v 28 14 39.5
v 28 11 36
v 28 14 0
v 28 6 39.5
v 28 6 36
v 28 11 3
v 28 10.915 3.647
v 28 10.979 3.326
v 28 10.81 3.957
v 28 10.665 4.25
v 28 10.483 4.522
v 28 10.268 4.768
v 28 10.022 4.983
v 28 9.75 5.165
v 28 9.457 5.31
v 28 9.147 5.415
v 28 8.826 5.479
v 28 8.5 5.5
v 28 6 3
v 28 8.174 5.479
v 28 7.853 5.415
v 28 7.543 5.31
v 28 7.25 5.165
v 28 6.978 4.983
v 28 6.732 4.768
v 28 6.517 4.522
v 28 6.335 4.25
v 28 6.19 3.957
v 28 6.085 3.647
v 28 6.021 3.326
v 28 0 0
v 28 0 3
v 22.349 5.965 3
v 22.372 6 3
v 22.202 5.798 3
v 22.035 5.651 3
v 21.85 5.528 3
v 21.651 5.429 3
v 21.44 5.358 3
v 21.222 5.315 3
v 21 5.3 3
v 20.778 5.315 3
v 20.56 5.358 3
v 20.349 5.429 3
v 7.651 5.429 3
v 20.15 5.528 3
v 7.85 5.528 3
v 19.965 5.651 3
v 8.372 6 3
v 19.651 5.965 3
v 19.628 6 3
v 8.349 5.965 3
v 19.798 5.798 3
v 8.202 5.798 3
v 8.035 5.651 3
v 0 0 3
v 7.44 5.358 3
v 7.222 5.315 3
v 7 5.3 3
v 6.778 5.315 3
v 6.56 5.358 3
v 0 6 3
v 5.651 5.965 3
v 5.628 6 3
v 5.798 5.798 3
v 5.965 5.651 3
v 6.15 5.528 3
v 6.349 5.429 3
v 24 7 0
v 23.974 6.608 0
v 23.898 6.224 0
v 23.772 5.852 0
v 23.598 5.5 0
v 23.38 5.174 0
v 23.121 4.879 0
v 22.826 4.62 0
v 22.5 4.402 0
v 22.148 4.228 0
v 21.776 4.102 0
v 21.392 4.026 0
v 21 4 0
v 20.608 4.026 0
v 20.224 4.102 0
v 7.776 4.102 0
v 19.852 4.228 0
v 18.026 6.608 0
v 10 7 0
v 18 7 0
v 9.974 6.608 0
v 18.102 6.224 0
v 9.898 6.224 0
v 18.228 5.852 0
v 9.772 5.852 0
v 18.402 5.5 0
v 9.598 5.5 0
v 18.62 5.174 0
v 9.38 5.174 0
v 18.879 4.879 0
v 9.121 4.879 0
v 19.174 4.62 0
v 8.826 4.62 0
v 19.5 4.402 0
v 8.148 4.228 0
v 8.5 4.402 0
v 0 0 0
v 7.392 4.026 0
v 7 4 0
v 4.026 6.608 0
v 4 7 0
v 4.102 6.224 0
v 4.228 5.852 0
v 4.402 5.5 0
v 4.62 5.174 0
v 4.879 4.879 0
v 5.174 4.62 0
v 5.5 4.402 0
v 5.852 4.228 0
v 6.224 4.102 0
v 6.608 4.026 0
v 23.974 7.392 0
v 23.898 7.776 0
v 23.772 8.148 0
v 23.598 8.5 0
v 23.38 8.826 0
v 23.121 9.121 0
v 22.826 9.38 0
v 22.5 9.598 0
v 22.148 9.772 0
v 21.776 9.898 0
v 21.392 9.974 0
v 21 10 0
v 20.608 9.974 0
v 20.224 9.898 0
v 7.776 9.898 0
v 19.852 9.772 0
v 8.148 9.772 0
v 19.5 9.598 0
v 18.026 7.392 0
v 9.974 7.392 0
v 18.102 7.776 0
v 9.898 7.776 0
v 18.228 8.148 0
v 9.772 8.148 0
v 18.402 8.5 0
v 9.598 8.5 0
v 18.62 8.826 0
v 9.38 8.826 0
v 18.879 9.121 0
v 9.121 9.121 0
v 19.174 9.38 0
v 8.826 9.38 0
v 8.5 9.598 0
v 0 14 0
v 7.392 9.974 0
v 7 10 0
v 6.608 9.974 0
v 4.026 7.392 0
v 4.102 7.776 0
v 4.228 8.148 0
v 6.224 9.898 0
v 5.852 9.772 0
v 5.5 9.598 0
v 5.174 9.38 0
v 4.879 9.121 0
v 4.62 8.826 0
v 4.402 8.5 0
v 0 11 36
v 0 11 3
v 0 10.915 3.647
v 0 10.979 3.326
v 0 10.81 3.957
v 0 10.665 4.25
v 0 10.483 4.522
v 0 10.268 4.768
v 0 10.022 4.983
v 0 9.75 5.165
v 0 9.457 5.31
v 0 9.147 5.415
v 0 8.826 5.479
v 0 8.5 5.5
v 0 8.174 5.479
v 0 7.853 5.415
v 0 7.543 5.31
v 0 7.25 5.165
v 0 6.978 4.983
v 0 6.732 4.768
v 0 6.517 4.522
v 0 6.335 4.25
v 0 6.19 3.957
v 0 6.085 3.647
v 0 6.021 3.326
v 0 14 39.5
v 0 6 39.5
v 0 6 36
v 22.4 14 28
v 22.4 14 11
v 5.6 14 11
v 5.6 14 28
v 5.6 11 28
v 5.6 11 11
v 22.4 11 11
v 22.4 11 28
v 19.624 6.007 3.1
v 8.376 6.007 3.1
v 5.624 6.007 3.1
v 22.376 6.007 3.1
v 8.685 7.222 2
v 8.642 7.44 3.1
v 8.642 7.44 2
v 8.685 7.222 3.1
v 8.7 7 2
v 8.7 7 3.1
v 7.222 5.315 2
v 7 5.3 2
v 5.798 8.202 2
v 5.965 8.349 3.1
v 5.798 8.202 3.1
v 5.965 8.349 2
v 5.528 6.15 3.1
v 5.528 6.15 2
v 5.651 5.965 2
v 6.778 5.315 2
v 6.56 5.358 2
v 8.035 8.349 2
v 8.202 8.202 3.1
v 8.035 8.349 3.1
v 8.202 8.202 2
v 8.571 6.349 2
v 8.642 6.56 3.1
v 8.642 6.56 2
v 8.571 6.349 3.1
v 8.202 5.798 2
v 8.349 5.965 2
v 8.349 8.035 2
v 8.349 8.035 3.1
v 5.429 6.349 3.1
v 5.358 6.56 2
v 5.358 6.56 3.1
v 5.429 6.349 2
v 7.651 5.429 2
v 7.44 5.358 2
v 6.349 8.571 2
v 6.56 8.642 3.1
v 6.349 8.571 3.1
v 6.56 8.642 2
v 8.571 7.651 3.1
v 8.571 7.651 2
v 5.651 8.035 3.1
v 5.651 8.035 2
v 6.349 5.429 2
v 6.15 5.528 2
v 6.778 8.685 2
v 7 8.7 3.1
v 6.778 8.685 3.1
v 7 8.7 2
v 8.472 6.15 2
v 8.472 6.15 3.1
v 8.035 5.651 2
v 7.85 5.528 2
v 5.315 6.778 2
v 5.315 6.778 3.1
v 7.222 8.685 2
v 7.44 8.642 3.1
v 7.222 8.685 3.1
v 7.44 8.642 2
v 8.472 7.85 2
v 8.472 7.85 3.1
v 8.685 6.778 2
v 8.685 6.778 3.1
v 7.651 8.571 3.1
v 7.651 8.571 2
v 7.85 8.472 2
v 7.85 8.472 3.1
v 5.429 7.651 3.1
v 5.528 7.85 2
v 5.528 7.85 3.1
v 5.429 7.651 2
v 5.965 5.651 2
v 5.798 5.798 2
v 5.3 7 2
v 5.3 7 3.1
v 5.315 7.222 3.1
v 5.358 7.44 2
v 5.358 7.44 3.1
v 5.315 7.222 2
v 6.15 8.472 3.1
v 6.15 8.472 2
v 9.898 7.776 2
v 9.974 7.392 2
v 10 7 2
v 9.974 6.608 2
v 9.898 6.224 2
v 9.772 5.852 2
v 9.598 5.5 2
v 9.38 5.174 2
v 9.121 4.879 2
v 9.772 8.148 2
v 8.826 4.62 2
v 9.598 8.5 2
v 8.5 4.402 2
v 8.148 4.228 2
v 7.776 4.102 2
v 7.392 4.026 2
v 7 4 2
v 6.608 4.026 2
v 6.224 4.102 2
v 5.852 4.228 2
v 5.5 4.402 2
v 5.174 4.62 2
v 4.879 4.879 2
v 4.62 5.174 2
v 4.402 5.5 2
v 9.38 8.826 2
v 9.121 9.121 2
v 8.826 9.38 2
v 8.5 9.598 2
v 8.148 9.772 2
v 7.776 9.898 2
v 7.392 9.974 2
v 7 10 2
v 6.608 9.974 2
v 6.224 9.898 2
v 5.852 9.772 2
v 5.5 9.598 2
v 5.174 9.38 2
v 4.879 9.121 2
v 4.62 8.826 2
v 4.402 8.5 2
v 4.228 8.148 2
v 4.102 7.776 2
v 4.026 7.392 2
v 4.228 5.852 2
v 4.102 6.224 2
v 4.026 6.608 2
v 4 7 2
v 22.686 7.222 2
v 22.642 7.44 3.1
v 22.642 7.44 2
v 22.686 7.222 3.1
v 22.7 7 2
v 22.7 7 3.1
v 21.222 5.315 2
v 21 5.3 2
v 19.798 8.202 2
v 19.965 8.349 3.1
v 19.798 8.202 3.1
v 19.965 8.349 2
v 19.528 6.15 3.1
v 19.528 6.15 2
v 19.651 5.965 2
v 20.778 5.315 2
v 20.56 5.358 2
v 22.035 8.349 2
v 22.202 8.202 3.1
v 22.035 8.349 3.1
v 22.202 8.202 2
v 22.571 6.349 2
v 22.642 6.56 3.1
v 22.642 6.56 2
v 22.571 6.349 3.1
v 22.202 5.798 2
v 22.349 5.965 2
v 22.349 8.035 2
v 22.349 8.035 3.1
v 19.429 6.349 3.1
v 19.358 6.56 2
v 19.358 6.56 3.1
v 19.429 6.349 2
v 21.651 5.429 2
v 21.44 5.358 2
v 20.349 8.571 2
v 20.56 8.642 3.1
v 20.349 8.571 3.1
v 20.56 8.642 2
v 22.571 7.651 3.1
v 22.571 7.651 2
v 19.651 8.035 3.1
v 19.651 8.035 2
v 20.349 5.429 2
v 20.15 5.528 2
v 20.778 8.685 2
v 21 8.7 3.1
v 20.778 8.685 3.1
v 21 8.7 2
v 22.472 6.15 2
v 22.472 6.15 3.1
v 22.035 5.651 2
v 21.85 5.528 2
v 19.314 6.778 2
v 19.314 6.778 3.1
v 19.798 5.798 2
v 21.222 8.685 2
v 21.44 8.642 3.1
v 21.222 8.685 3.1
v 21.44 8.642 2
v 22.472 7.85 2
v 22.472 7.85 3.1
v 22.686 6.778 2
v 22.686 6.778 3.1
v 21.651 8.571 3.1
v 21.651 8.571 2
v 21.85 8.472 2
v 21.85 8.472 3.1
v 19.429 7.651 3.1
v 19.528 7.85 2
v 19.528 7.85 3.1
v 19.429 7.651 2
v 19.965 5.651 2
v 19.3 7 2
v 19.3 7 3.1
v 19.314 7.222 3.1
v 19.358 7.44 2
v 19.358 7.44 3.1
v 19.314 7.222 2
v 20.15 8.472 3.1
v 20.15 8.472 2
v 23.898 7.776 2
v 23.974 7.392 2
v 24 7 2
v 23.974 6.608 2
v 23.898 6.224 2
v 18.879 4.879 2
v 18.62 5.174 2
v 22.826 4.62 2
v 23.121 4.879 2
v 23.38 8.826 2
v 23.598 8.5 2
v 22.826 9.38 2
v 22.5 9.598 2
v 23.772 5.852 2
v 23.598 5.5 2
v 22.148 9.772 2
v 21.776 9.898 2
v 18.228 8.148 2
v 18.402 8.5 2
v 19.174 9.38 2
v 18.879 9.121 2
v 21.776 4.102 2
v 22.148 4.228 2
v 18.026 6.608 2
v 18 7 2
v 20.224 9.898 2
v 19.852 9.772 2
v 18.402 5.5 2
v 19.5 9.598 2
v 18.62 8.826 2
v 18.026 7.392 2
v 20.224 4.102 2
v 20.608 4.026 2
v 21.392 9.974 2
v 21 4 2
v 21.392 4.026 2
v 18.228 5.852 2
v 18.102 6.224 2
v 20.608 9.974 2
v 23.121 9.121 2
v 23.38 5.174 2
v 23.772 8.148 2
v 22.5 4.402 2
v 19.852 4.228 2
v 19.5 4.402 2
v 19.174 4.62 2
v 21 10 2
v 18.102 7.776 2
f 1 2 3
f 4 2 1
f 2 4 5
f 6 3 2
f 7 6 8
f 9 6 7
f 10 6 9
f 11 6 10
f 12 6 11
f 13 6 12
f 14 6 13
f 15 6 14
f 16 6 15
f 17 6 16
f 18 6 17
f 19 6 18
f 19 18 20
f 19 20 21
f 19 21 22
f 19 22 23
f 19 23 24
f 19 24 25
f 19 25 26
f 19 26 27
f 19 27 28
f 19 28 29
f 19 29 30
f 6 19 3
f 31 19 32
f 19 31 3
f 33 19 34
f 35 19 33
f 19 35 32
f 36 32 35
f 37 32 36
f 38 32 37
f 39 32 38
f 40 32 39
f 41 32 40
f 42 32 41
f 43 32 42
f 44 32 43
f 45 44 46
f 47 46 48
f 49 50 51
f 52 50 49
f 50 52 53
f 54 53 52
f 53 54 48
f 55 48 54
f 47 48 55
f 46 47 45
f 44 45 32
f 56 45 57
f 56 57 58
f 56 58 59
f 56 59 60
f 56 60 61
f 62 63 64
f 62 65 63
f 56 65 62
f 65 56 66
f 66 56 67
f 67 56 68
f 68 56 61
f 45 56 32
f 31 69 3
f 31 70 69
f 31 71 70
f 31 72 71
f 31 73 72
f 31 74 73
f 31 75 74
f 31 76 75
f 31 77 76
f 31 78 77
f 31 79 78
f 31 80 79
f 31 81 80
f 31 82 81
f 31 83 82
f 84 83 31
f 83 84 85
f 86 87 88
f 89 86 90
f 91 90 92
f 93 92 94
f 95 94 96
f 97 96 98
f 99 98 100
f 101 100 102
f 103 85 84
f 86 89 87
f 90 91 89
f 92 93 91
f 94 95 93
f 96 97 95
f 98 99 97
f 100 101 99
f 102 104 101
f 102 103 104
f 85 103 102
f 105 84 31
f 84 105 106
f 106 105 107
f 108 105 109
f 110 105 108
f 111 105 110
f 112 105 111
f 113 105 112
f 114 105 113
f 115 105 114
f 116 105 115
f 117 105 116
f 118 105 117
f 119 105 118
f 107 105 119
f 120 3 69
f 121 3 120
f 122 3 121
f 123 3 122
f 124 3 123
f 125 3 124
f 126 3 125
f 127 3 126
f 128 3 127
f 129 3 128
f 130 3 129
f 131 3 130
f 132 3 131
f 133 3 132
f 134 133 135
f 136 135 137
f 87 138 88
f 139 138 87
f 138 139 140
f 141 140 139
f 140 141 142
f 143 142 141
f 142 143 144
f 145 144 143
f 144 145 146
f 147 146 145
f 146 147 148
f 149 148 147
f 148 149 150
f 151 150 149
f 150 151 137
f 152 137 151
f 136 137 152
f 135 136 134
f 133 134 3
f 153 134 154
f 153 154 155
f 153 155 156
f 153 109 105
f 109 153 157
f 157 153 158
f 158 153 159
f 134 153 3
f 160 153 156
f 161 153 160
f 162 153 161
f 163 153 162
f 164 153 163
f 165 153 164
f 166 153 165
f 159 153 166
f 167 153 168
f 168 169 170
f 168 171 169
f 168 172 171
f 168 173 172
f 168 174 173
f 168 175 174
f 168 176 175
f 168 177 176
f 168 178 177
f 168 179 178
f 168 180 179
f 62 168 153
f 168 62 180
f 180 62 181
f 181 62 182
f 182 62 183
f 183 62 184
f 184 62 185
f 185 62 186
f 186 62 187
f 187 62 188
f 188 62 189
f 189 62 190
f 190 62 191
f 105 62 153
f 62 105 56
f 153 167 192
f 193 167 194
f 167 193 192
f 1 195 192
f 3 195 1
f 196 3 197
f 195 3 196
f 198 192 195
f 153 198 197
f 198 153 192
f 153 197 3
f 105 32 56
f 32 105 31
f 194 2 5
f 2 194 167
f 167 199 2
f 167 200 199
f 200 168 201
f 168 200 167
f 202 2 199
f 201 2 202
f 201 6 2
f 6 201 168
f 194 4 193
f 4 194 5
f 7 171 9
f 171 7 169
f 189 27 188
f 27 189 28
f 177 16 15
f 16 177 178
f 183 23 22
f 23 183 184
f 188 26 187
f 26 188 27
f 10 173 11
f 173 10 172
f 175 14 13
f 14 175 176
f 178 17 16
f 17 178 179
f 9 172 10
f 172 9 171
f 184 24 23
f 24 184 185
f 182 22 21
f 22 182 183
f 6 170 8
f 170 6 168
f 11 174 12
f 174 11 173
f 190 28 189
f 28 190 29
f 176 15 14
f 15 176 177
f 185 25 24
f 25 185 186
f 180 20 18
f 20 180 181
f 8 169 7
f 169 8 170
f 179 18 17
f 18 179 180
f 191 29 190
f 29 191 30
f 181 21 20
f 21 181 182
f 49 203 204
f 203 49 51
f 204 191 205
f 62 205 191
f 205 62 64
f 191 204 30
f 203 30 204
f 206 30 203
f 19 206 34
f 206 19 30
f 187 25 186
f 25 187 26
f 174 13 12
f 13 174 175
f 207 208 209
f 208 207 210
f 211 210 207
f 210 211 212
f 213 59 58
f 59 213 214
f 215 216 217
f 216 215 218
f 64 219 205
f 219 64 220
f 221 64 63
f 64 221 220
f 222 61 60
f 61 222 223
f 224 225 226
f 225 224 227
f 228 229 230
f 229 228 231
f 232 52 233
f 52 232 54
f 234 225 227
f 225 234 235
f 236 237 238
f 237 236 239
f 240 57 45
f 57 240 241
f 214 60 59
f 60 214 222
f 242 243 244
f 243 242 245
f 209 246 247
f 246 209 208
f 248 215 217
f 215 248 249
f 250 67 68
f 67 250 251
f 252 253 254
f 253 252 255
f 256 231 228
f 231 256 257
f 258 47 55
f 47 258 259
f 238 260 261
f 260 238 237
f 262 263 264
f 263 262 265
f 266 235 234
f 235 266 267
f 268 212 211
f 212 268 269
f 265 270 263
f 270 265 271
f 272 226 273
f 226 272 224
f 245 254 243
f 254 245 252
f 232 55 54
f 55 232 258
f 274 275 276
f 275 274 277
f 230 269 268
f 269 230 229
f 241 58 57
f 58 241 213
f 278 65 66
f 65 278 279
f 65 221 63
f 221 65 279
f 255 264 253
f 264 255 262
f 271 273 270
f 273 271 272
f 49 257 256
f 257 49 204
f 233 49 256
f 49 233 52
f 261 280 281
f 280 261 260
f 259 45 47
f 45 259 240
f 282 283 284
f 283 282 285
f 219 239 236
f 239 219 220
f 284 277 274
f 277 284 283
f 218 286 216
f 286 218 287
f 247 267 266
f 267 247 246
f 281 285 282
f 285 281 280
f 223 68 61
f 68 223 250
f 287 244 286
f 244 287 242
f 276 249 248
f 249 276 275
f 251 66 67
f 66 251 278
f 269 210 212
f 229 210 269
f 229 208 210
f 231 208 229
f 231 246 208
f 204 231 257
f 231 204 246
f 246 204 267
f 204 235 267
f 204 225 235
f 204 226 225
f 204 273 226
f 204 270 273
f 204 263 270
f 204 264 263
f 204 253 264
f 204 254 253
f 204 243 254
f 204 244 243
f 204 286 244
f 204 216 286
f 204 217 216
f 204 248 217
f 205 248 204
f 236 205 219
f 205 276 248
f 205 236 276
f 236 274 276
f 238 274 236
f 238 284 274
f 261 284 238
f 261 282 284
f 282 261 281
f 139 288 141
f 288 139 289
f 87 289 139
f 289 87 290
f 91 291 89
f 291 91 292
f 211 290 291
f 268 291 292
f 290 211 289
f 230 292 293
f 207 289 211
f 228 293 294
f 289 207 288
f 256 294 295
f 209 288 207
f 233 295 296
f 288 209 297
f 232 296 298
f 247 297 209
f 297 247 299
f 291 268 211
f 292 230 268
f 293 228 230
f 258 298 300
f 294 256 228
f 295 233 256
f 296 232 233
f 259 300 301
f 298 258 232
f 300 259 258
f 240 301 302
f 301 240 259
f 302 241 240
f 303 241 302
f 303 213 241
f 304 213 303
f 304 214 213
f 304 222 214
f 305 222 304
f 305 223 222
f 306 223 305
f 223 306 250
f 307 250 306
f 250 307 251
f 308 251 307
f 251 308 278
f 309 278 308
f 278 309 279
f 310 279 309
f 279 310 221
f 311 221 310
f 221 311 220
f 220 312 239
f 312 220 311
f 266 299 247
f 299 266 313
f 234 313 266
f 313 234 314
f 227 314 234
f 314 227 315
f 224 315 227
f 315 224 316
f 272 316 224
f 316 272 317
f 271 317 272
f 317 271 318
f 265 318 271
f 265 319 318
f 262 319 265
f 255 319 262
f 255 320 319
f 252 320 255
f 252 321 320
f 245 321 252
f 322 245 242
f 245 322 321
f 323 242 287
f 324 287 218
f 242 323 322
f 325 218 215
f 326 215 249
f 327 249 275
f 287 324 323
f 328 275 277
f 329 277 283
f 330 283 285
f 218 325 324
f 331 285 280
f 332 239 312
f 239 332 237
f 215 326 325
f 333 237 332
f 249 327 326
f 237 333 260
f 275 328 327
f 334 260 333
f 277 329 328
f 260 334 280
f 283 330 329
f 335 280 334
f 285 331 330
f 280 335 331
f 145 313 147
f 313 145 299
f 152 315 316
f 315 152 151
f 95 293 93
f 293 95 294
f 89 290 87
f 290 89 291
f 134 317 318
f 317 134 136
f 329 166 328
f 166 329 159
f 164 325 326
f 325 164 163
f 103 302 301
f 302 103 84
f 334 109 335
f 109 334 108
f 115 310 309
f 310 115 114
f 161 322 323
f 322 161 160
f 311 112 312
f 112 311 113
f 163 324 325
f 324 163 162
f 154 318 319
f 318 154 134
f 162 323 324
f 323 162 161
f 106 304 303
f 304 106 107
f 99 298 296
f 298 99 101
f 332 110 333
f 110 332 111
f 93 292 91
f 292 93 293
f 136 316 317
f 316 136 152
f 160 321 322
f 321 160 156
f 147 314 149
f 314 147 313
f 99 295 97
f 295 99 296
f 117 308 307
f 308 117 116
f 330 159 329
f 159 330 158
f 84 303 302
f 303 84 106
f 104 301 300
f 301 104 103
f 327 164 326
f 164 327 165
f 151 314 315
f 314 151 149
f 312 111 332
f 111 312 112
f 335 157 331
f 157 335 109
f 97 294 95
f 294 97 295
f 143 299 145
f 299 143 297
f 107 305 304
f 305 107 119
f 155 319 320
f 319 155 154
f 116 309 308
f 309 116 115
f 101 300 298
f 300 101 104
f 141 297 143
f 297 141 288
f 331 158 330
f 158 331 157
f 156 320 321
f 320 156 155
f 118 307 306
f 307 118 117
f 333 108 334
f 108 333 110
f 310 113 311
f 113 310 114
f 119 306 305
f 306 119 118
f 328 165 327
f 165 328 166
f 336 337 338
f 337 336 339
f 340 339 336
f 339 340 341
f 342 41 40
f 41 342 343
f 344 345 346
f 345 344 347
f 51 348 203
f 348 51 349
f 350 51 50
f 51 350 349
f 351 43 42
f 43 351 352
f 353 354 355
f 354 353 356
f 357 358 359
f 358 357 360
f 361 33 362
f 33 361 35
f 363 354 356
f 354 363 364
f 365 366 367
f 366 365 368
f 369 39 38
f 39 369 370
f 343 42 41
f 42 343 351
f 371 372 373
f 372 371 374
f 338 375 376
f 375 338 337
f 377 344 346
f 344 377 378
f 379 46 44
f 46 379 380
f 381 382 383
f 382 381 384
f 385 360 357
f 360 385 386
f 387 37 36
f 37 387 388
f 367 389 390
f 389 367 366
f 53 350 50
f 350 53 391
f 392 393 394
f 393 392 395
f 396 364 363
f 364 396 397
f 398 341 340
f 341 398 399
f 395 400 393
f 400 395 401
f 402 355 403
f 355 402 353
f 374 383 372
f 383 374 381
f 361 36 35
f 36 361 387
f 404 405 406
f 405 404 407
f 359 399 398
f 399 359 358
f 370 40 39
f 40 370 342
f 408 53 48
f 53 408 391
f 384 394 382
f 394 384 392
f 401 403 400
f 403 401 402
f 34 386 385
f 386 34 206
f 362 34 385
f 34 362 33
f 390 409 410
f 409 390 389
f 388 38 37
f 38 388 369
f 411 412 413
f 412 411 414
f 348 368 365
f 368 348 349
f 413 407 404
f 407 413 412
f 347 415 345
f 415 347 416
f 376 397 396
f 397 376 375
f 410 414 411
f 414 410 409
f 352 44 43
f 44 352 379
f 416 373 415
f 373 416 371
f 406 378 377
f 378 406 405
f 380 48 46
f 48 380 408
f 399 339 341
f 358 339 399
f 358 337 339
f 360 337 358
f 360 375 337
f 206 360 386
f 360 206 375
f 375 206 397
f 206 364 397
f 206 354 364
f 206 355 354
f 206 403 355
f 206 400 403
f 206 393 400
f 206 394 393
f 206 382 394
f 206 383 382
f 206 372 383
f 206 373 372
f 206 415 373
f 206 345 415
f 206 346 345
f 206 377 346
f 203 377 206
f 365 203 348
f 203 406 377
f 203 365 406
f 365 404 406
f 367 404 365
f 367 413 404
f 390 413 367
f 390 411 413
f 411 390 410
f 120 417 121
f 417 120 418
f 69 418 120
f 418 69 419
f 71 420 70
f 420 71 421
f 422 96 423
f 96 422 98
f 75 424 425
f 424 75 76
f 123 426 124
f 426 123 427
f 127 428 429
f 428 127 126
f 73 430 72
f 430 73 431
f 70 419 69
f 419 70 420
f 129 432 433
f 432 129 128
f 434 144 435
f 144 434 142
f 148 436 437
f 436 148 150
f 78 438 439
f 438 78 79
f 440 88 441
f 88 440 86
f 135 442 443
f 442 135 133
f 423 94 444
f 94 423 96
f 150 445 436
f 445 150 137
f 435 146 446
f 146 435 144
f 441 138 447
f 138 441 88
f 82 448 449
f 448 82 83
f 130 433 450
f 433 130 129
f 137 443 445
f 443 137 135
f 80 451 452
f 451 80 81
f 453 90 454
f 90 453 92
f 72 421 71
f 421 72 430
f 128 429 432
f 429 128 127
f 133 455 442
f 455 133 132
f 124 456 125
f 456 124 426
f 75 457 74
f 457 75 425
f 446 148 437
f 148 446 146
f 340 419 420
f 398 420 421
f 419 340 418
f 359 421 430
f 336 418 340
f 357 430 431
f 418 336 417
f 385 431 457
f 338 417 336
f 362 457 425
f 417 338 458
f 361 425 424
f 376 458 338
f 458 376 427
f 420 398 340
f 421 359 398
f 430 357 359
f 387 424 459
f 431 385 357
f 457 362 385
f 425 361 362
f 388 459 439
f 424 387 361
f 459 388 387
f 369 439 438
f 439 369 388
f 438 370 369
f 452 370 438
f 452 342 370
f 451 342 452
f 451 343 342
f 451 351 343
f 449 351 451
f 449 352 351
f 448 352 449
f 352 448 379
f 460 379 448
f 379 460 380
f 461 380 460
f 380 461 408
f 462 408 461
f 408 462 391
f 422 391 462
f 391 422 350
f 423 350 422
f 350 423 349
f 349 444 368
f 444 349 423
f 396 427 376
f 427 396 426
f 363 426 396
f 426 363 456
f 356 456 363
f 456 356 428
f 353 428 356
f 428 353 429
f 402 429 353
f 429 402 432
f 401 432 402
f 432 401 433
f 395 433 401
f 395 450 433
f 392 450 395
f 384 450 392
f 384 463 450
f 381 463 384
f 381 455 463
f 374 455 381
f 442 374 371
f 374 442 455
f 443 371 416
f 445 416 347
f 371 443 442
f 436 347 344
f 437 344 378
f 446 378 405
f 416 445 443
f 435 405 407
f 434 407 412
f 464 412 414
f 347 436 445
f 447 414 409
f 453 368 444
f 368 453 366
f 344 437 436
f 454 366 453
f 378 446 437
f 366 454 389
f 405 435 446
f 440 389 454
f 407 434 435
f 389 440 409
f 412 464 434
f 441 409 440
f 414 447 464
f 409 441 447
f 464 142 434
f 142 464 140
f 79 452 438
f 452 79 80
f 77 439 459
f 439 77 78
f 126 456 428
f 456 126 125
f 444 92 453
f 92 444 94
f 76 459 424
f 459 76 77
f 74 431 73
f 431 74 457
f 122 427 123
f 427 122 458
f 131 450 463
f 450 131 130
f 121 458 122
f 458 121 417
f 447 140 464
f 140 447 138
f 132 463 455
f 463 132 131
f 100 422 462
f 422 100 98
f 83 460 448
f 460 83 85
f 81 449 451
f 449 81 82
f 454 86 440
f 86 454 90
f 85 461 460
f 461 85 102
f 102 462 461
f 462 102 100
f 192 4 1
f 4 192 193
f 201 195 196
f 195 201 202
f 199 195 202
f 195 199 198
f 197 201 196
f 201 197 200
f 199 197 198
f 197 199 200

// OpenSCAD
// ============================================================
//  MSE-6 — Shell-to-Rover Lock Bracket  (print 4×)
//  Clamps the MSE-6 printed shell onto the Wave Rover
//  aluminum expansion plate so it can't shift or rattle.
//
//  How it works:
//    – Vertical leg presses against inside of shell skirt wall
//    – Horizontal foot sits on Wave Rover expansion plate
//    – M3 screw through foot into one of the rover plate M3 holes
//    – Top tab hooks over the shell skirt lip (Z=13mm)
//    – Print 4, place at ~X=40, X=170 (front+rear both sides)
// ============================================================
$fn = 48;

// Rover plate sits at Z=0 in this part's local frame
// Shell skirt inner wall is ~4mm thick, skirt height 3mm (Z=10→13)

foot_l    = 28;    // length along rover plate
foot_w    = 14;    // width
foot_t    =  3;    // thickness of foot plate
leg_h     = 33;    // height of vertical leg (rover plate to shell skirt base ≈ 33mm)
                   // shell sits on rover plate; skirt bottom at rover surface
leg_t     =  3;    // leg thickness
tab_h     =  4;    // hook tab height over skirt lip
tab_d     =  5;    // hook tab depth (grips skirt lip)
tab_gap   =  3.5;  // clearance slot = skirt thickness (3mm) + 0.5mm
m3_d      =  3.4;  // M3 clearance hole through foot
m3_csink  =  6.0;  // M3 countersink diameter
csink_d   =  2.0;  // countersink depth
fillet    =  2.5;

module bracket() {
    difference() {
        union() {
            // Horizontal foot
            cube([foot_l, foot_w, foot_t]);

            // Vertical leg (rear of foot)
            translate([0, foot_w - leg_t, foot_t])
                cube([foot_l, leg_t, leg_h]);

            // Hook tab at top of leg (clips over shell skirt lip)
            translate([0, foot_w - leg_t - tab_d, foot_t + leg_h])
                cube([foot_l, leg_t + tab_d, tab_gap + leg_t]);

            // Fillet between foot and leg
            translate([0, foot_w - leg_t - fillet, foot_t])
                rotate([0, 90, 0])
                    cylinder(r = fillet, h = foot_l);
        }

        // M3 hole through foot (2 holes)
        for (xi = [foot_l*0.25, foot_l*0.75])
            translate([xi, foot_w/2, -0.1]) {
                cylinder(d = m3_d, h = foot_t + 0.2);
                cylinder(d = m3_csink, h = csink_d + 0.1);  // countersink
            }

        // Slot in hook tab = shell skirt thickness + clearance
        translate([-0.1, foot_w - leg_t - tab_d - 0.1,
                   foot_t + leg_h + tab_gap])
            cube([foot_l + 0.2, tab_d + leg_t + 0.2, leg_t + 0.2]);

        // Lighten leg with slot
        translate([foot_l*0.2, foot_w - leg_t - 0.1, foot_t + 8])
            cube([foot_l*0.6, leg_t + 0.2, leg_h - 16]);
    }
}

bracket();
